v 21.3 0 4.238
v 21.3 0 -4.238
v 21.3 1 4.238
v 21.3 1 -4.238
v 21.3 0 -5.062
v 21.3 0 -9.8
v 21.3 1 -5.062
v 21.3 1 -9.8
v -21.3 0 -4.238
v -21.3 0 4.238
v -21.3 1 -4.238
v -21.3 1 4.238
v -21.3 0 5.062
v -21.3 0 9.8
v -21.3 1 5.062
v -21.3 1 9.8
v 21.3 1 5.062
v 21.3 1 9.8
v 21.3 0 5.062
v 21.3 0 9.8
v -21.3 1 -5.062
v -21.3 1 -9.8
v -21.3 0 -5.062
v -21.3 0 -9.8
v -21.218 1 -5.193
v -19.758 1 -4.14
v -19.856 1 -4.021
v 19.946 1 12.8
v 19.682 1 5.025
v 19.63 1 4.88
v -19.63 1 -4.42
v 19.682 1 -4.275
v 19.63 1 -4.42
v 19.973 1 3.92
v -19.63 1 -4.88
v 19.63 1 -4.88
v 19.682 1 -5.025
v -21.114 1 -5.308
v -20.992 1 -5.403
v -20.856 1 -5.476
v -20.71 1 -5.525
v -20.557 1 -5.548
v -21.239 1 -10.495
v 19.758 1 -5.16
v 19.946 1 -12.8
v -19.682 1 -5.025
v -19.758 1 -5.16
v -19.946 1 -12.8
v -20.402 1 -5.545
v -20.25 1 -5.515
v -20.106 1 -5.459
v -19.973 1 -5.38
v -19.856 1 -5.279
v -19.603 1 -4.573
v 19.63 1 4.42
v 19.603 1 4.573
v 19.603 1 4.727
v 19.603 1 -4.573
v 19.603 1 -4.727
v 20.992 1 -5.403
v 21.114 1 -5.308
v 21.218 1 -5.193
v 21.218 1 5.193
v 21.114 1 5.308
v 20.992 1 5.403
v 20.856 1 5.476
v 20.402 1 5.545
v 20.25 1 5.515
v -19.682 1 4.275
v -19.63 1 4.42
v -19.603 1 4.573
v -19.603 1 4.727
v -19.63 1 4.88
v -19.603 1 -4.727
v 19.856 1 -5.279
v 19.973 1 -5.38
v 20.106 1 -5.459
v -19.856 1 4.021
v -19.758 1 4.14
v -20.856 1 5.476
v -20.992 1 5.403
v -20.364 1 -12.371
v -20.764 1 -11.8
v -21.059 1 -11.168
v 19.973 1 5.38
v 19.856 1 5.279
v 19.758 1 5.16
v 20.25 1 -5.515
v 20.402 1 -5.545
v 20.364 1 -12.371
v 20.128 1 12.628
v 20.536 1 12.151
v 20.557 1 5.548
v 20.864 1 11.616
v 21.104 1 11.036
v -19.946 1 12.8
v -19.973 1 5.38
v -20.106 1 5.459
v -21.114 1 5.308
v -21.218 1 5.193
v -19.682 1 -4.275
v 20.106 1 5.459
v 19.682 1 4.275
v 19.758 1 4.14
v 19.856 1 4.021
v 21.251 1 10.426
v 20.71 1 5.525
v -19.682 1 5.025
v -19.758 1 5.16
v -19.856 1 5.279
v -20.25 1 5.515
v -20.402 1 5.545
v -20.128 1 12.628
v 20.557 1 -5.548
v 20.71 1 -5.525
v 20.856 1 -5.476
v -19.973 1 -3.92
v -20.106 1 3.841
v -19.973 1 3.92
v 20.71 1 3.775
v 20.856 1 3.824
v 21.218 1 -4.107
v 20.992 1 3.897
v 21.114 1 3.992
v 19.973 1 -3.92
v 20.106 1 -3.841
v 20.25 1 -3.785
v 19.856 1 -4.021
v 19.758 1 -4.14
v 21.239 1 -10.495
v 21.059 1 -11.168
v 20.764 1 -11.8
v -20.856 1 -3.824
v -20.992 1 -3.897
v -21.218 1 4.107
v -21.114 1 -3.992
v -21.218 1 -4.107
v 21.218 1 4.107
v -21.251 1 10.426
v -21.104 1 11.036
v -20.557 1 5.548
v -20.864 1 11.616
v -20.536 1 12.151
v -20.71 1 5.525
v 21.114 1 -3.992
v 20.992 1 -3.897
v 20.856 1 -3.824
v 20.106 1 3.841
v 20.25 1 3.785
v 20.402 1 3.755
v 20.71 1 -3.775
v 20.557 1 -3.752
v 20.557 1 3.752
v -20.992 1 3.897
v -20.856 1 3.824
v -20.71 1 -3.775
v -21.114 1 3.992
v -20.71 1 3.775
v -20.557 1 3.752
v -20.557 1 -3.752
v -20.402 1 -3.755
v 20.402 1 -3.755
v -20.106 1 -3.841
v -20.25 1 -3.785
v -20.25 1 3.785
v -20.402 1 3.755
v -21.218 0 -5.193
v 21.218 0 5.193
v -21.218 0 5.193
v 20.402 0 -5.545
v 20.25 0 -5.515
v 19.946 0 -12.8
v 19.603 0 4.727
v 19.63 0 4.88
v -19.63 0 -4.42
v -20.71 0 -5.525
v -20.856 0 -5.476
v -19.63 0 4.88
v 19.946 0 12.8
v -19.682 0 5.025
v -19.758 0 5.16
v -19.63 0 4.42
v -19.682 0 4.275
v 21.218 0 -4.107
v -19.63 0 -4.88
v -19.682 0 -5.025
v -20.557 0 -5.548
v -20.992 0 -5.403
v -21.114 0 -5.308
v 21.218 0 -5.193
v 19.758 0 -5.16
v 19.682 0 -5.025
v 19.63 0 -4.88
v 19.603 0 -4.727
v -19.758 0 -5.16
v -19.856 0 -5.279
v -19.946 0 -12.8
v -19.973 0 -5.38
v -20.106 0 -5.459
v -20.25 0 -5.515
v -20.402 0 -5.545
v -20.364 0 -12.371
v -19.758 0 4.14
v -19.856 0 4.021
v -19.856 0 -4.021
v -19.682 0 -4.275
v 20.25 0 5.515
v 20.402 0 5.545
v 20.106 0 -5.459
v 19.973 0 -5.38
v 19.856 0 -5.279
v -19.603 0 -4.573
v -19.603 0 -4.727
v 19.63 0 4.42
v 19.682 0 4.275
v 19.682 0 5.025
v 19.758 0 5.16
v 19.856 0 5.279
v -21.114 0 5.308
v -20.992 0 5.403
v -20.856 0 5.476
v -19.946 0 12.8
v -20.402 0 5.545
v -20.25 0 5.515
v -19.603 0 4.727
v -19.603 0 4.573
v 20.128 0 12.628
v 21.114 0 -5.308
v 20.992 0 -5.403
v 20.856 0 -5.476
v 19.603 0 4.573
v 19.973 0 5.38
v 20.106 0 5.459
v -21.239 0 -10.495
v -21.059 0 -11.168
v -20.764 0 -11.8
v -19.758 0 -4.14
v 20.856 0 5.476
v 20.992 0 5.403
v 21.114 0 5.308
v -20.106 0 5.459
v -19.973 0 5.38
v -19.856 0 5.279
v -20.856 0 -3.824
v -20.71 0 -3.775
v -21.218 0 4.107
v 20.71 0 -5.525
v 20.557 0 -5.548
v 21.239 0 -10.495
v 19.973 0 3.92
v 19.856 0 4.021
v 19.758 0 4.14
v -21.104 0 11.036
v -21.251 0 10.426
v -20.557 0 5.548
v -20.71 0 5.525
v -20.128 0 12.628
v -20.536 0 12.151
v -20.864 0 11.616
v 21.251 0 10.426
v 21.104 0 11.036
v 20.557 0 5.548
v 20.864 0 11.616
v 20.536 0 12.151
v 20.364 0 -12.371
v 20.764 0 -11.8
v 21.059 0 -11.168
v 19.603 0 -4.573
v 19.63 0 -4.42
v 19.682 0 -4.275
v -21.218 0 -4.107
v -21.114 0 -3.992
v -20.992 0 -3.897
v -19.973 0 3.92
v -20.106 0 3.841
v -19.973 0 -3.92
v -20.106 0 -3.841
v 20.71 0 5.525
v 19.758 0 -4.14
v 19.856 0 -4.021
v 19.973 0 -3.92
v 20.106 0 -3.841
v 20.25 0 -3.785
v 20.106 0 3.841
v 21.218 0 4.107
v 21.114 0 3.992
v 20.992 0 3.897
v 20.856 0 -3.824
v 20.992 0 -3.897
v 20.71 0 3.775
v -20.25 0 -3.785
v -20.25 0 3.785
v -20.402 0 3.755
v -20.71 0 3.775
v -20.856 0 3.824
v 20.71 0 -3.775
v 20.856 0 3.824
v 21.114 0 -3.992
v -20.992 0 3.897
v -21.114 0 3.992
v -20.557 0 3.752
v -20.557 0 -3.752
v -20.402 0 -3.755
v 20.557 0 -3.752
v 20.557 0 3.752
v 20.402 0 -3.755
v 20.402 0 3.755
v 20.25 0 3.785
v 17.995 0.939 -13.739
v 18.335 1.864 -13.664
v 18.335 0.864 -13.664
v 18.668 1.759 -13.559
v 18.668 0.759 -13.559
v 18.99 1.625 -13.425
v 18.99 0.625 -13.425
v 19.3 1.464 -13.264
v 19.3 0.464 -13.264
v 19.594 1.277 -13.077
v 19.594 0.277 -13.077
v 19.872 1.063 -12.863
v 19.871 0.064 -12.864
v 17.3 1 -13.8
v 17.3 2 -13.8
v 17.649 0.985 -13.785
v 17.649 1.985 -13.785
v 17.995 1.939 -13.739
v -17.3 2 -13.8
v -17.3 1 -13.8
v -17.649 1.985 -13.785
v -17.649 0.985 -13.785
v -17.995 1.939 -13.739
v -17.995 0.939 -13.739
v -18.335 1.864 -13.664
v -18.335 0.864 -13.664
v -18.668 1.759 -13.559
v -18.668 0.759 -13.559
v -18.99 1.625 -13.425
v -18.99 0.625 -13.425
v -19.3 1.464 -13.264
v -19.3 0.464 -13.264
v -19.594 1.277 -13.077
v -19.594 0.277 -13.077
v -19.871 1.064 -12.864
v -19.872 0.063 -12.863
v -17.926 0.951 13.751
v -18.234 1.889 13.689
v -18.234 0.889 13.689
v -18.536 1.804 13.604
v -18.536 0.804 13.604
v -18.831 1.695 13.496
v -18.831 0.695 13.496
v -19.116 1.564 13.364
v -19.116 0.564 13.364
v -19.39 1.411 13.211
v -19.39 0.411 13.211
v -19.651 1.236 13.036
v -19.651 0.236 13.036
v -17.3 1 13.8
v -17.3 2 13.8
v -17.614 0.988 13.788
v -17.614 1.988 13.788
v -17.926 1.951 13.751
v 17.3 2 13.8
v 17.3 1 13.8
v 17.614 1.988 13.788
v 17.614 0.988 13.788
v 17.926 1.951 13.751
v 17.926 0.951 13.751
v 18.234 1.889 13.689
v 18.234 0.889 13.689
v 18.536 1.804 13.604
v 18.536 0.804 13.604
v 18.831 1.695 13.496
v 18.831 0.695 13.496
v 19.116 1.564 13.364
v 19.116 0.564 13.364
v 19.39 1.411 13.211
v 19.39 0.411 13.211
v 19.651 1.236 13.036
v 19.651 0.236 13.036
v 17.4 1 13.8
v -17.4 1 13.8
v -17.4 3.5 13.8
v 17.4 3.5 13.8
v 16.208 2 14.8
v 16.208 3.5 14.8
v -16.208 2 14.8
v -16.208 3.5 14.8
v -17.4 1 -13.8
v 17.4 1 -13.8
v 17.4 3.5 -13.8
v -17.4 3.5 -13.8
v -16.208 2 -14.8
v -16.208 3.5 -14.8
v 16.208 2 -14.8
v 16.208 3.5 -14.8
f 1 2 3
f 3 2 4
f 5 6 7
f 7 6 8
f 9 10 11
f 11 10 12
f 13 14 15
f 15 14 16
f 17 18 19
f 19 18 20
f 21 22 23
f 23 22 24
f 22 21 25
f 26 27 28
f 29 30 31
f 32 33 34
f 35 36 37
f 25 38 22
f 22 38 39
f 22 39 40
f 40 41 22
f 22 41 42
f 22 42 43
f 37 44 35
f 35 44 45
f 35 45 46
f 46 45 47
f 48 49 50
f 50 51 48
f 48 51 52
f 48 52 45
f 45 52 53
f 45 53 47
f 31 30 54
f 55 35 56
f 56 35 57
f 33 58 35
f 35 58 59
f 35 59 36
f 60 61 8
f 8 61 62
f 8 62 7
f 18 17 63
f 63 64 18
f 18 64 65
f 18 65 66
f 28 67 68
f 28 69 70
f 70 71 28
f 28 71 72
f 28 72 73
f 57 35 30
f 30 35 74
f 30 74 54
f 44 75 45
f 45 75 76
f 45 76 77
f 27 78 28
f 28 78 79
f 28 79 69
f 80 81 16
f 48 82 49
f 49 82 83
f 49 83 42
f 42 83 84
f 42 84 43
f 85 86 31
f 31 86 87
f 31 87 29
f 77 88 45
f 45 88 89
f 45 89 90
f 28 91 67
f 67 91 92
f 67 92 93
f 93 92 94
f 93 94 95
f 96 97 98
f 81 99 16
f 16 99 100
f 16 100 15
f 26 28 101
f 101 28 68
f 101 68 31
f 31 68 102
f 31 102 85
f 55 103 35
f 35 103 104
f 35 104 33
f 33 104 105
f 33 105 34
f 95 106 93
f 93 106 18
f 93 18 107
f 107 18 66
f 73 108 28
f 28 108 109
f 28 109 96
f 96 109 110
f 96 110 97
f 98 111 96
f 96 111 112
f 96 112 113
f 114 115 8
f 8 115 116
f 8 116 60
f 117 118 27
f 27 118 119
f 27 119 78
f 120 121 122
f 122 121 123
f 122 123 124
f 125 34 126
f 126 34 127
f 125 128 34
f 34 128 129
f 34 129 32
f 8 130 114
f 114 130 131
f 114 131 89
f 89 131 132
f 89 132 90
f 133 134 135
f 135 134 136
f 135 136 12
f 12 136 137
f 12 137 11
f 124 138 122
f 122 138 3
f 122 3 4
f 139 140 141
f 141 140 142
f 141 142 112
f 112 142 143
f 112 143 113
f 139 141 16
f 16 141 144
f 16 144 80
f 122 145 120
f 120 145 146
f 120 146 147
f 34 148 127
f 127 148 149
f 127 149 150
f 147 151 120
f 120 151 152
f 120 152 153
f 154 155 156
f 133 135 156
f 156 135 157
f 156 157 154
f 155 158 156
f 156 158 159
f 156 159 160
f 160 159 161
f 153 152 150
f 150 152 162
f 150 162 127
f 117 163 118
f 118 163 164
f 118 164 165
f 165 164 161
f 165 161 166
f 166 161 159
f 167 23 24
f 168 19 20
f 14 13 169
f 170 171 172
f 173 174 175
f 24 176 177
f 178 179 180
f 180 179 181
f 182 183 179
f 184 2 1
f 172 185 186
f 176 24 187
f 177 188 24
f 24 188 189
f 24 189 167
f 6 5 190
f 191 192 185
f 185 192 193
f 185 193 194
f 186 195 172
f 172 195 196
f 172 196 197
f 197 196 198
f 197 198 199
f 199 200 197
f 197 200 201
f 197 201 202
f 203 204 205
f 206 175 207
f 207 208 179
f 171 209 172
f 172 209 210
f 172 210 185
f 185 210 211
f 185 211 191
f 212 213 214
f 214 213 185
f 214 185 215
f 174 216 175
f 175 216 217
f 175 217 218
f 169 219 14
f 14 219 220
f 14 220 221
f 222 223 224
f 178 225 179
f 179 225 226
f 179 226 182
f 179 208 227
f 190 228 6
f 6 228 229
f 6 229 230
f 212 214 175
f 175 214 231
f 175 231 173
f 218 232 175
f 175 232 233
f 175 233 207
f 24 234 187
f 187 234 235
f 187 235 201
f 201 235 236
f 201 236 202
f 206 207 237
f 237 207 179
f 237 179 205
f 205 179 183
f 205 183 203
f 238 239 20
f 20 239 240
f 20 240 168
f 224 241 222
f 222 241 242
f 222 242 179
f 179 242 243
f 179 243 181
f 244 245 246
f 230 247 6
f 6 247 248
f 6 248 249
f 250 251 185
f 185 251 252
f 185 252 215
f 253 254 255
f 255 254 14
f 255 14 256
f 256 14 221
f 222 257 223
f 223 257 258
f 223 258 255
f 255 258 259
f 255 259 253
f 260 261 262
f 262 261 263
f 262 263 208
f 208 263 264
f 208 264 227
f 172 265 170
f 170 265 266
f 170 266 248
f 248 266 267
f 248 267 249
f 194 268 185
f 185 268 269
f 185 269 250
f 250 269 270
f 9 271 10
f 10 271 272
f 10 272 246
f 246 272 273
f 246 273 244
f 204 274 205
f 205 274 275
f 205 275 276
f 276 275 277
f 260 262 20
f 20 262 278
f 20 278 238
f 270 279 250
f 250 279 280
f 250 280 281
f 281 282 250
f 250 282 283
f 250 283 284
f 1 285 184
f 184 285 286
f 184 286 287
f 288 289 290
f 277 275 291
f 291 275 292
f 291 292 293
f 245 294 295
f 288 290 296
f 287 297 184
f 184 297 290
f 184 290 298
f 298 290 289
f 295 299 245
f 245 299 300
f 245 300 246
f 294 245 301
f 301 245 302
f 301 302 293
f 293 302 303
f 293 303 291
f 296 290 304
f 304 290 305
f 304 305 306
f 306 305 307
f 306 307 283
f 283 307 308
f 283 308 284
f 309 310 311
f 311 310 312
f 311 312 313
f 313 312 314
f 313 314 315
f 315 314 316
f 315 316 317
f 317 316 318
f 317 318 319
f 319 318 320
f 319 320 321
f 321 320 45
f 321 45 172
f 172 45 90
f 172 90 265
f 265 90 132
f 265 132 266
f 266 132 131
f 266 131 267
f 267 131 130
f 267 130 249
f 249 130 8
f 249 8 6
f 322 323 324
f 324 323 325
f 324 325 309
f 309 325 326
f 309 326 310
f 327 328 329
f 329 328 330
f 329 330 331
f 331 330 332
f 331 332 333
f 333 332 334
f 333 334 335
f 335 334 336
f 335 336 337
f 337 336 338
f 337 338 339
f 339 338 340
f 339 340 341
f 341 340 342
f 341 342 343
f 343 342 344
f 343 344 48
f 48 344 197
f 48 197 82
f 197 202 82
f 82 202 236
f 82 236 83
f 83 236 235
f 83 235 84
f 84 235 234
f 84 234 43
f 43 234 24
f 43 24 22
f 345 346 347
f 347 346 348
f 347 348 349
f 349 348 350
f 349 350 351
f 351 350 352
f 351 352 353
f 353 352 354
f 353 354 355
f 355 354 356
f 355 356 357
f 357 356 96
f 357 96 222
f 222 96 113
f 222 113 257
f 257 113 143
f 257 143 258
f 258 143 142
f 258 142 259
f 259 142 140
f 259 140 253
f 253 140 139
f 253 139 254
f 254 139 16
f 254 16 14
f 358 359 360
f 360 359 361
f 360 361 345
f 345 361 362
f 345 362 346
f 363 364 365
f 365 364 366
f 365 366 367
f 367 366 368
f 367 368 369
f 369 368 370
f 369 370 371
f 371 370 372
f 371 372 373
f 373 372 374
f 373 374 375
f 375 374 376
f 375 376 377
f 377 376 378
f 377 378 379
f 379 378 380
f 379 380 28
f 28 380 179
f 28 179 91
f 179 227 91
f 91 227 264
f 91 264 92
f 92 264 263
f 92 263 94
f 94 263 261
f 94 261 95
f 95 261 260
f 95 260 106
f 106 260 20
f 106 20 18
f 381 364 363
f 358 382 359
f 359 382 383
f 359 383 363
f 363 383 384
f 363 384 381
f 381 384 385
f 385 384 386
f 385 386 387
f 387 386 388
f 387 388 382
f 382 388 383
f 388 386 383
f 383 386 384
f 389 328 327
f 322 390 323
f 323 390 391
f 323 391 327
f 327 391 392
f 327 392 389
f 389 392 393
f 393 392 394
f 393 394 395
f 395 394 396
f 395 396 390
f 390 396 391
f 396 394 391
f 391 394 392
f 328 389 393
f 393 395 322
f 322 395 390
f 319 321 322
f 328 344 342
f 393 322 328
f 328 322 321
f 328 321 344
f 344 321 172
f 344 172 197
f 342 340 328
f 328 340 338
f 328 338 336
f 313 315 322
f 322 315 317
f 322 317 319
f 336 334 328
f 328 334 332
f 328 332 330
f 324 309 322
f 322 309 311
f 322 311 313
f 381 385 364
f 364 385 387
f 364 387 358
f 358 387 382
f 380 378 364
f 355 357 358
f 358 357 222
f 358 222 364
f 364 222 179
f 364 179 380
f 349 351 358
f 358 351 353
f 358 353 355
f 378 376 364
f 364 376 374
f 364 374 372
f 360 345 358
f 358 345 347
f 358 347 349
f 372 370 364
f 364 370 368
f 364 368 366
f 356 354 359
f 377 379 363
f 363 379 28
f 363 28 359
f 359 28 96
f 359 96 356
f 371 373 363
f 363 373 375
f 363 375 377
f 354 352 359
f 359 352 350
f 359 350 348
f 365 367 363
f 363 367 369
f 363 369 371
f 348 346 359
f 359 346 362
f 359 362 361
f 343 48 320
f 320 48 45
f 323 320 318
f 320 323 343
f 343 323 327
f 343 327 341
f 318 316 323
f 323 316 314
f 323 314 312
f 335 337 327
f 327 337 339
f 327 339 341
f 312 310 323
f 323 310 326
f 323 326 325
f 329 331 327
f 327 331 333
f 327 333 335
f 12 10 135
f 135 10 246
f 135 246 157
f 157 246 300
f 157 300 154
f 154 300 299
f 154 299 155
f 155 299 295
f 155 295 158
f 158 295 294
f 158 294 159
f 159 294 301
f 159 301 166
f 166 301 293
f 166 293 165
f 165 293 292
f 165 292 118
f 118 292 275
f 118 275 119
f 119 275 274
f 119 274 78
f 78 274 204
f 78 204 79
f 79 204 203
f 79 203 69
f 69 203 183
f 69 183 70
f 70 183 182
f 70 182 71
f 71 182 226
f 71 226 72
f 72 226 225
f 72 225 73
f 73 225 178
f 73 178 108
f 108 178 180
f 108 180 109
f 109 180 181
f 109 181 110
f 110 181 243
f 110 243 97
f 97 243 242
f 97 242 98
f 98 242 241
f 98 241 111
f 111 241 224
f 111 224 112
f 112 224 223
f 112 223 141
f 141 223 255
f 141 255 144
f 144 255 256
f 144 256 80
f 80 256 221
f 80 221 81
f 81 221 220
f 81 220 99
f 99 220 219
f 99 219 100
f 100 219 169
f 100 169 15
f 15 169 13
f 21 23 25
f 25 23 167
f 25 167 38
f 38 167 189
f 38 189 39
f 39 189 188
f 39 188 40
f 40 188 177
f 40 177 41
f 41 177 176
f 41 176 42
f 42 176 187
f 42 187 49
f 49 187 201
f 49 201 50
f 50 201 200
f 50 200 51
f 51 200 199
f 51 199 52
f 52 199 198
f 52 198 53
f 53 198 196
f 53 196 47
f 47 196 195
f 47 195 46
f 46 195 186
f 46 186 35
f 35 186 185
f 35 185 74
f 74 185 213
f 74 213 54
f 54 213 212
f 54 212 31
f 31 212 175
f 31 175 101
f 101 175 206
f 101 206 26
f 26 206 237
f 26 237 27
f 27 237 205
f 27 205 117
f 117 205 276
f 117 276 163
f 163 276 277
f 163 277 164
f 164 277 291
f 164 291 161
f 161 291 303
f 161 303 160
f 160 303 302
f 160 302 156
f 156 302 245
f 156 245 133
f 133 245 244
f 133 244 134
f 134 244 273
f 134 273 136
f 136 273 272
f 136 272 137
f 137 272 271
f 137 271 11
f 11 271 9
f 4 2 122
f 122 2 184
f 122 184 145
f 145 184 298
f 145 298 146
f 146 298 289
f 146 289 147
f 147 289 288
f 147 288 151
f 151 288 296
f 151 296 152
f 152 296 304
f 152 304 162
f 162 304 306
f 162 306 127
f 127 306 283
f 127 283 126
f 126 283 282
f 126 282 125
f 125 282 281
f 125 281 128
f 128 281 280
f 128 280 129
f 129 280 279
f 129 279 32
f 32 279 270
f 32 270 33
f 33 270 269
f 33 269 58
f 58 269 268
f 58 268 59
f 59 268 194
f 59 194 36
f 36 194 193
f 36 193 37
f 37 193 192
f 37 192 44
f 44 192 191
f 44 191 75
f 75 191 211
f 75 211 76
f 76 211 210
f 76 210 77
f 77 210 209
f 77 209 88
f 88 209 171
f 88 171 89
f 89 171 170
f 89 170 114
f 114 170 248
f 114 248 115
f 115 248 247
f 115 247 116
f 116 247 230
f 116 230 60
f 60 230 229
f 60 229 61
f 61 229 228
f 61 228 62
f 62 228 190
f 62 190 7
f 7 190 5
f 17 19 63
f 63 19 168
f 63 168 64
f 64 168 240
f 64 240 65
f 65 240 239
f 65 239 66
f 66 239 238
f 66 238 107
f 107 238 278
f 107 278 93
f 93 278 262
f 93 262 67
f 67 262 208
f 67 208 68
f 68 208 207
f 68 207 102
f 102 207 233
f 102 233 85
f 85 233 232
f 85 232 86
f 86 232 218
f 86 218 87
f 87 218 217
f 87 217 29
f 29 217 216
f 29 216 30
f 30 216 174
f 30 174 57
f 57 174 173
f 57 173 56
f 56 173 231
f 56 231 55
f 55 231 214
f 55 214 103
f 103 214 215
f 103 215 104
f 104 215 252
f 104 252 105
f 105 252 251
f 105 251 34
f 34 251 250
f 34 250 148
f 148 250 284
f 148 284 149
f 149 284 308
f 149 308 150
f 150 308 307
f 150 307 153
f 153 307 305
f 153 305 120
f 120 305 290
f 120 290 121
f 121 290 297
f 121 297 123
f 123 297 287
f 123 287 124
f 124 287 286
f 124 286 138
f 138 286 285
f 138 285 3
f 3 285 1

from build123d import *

# Parameters (mm, degrees)
EXTRUDE_1_DEPTH      = 1
FILLET_1_R           = 4
EXTRUDE_2_DEPTH      = 2.5
EXTRUDE_2_DEPTH_BACK = 1
CHAMFER_1_SIZE       = 2
CHAMFER_3_SIZE       = 1
CUT_EXTRUDE_1_REACH  = 28.172
SKETCH_3_R           = 0.9000000000000004


with BuildPart() as part:
    # 草图1 → 凸台-拉伸1 (new body)
    with BuildSketch(Plane(origin=(0, 0, 0), x_dir=(1, 0, 0), z_dir=(0, 1, 0))):
        Polygon((-21.300000000000004, 13.800000000000002), (21.299999999999997, 13.800000000000002), (21.3, -13.799999999999999), (-21.3, -13.799999999999999), align=None)
    extrude(amount=EXTRUDE_1_DEPTH)

    # 圆角1
    fillet_1_edges = [part.edges().sort_by_distance(p)[0] for p in [
        (21.3, 0.5, 13.799999999999999),
        (-21.3, 0.5, 13.799999999999999),
        (-21.300000000000004, 0.5, -13.800000000000002),
        (21.299999999999997, 0.5, -13.800000000000002),
    ]]
    fillet(fillet_1_edges, radius=FILLET_1_R)

    # 草图2 → 凸台-拉伸2 (add, two sides: drawn at the far end of the back side and taken through both)
    with BuildSketch(Plane(origin=(0, 1, 0), x_dir=(1, 0, 0), z_dir=(0, 1, 0)).offset(-EXTRUDE_2_DEPTH_BACK)):
        Polygon((17.4, -13.800000000000002), (16.208246407405806, -14.8), (-16.208246407405806, -14.8), (-17.4, -13.800000000000002), align=None)
        Polygon((-17.400000000000002, 13.799999999999994), (-16.208246407405802, 14.8), (16.208246407405802, 14.8), (17.400000000000002, 13.799999999999994), align=None)
    extrude(amount=EXTRUDE_2_DEPTH + EXTRUDE_2_DEPTH_BACK)

    # 倒角1
    chamfer_1_edges = [part.edges().sort_by_distance(p)[0] for p in [
        (0, 0, 14.8),
        (0, 0, -14.8),
    ]]
    chamfer(chamfer_1_edges, length=CHAMFER_1_SIZE - 0.0001)  # a hair under: the kernel refuses the full size

    # 倒角3
    chamfer_3_edges = [part.edges().sort_by_distance(p)[0] for p in [
        (-3.55e-15, 1, -13.800000000000002),
        (0, 1, 13.799999999999999),
    ]]
    chamfer(chamfer_3_edges, length=CHAMFER_3_SIZE)

    # 草图3 → 切除-拉伸1 (cut, up to next)
    with BuildSketch(Plane.XZ, mode=Mode.PRIVATE) as cut_extrude_1_sk1:
        with Locations((-20.500000000000004, 4.65)):
            Circle(SKETCH_3_R)
    cut_extrude_1_tool1 = extrude(cut_extrude_1_sk1.sketch, amount=-CUT_EXTRUDE_1_REACH, mode=Mode.PRIVATE) & part.part
    # 草图3 → 切除-拉伸1 (cut, up to next)
    with BuildSketch(Plane.XZ, mode=Mode.PRIVATE) as cut_extrude_1_sk2:
        with Locations((-20.500000000000004, -4.65)):
            Circle(SKETCH_3_R)
    cut_extrude_1_tool2 = extrude(cut_extrude_1_sk2.sketch, amount=-CUT_EXTRUDE_1_REACH, mode=Mode.PRIVATE) & part.part
    # 草图3 → 切除-拉伸1 (cut, up to next)
    with BuildSketch(Plane.XZ, mode=Mode.PRIVATE) as cut_extrude_1_sk3:
        with Locations((20.50000000000001, -4.649999999999995)):
            Circle(SKETCH_3_R)
    cut_extrude_1_tool3 = extrude(cut_extrude_1_sk3.sketch, amount=-CUT_EXTRUDE_1_REACH, mode=Mode.PRIVATE) & part.part
    # 草图3 → 切除-拉伸1 (cut, up to next)
    with BuildSketch(Plane.XZ, mode=Mode.PRIVATE) as cut_extrude_1_sk4:
        with Locations((20.500000000000004, 4.650000000000006)):
            Circle(SKETCH_3_R)
    cut_extrude_1_tool4 = extrude(cut_extrude_1_sk4.sketch, amount=-CUT_EXTRUDE_1_REACH, mode=Mode.PRIVATE) & part.part
    add(cut_extrude_1_tool1.solids().sort_by_distance((-20.5, 0, 4.65))[0], mode=Mode.SUBTRACT)
    add(cut_extrude_1_tool2.solids().sort_by_distance((-20.5, 0, -4.65))[0], mode=Mode.SUBTRACT)
    add(cut_extrude_1_tool3.solids().sort_by_distance((20.5, 0, -4.65))[0], mode=Mode.SUBTRACT)
    add(cut_extrude_1_tool4.solids().sort_by_distance((20.5, 0, 4.65))[0], mode=Mode.SUBTRACT)


solid = part.part
